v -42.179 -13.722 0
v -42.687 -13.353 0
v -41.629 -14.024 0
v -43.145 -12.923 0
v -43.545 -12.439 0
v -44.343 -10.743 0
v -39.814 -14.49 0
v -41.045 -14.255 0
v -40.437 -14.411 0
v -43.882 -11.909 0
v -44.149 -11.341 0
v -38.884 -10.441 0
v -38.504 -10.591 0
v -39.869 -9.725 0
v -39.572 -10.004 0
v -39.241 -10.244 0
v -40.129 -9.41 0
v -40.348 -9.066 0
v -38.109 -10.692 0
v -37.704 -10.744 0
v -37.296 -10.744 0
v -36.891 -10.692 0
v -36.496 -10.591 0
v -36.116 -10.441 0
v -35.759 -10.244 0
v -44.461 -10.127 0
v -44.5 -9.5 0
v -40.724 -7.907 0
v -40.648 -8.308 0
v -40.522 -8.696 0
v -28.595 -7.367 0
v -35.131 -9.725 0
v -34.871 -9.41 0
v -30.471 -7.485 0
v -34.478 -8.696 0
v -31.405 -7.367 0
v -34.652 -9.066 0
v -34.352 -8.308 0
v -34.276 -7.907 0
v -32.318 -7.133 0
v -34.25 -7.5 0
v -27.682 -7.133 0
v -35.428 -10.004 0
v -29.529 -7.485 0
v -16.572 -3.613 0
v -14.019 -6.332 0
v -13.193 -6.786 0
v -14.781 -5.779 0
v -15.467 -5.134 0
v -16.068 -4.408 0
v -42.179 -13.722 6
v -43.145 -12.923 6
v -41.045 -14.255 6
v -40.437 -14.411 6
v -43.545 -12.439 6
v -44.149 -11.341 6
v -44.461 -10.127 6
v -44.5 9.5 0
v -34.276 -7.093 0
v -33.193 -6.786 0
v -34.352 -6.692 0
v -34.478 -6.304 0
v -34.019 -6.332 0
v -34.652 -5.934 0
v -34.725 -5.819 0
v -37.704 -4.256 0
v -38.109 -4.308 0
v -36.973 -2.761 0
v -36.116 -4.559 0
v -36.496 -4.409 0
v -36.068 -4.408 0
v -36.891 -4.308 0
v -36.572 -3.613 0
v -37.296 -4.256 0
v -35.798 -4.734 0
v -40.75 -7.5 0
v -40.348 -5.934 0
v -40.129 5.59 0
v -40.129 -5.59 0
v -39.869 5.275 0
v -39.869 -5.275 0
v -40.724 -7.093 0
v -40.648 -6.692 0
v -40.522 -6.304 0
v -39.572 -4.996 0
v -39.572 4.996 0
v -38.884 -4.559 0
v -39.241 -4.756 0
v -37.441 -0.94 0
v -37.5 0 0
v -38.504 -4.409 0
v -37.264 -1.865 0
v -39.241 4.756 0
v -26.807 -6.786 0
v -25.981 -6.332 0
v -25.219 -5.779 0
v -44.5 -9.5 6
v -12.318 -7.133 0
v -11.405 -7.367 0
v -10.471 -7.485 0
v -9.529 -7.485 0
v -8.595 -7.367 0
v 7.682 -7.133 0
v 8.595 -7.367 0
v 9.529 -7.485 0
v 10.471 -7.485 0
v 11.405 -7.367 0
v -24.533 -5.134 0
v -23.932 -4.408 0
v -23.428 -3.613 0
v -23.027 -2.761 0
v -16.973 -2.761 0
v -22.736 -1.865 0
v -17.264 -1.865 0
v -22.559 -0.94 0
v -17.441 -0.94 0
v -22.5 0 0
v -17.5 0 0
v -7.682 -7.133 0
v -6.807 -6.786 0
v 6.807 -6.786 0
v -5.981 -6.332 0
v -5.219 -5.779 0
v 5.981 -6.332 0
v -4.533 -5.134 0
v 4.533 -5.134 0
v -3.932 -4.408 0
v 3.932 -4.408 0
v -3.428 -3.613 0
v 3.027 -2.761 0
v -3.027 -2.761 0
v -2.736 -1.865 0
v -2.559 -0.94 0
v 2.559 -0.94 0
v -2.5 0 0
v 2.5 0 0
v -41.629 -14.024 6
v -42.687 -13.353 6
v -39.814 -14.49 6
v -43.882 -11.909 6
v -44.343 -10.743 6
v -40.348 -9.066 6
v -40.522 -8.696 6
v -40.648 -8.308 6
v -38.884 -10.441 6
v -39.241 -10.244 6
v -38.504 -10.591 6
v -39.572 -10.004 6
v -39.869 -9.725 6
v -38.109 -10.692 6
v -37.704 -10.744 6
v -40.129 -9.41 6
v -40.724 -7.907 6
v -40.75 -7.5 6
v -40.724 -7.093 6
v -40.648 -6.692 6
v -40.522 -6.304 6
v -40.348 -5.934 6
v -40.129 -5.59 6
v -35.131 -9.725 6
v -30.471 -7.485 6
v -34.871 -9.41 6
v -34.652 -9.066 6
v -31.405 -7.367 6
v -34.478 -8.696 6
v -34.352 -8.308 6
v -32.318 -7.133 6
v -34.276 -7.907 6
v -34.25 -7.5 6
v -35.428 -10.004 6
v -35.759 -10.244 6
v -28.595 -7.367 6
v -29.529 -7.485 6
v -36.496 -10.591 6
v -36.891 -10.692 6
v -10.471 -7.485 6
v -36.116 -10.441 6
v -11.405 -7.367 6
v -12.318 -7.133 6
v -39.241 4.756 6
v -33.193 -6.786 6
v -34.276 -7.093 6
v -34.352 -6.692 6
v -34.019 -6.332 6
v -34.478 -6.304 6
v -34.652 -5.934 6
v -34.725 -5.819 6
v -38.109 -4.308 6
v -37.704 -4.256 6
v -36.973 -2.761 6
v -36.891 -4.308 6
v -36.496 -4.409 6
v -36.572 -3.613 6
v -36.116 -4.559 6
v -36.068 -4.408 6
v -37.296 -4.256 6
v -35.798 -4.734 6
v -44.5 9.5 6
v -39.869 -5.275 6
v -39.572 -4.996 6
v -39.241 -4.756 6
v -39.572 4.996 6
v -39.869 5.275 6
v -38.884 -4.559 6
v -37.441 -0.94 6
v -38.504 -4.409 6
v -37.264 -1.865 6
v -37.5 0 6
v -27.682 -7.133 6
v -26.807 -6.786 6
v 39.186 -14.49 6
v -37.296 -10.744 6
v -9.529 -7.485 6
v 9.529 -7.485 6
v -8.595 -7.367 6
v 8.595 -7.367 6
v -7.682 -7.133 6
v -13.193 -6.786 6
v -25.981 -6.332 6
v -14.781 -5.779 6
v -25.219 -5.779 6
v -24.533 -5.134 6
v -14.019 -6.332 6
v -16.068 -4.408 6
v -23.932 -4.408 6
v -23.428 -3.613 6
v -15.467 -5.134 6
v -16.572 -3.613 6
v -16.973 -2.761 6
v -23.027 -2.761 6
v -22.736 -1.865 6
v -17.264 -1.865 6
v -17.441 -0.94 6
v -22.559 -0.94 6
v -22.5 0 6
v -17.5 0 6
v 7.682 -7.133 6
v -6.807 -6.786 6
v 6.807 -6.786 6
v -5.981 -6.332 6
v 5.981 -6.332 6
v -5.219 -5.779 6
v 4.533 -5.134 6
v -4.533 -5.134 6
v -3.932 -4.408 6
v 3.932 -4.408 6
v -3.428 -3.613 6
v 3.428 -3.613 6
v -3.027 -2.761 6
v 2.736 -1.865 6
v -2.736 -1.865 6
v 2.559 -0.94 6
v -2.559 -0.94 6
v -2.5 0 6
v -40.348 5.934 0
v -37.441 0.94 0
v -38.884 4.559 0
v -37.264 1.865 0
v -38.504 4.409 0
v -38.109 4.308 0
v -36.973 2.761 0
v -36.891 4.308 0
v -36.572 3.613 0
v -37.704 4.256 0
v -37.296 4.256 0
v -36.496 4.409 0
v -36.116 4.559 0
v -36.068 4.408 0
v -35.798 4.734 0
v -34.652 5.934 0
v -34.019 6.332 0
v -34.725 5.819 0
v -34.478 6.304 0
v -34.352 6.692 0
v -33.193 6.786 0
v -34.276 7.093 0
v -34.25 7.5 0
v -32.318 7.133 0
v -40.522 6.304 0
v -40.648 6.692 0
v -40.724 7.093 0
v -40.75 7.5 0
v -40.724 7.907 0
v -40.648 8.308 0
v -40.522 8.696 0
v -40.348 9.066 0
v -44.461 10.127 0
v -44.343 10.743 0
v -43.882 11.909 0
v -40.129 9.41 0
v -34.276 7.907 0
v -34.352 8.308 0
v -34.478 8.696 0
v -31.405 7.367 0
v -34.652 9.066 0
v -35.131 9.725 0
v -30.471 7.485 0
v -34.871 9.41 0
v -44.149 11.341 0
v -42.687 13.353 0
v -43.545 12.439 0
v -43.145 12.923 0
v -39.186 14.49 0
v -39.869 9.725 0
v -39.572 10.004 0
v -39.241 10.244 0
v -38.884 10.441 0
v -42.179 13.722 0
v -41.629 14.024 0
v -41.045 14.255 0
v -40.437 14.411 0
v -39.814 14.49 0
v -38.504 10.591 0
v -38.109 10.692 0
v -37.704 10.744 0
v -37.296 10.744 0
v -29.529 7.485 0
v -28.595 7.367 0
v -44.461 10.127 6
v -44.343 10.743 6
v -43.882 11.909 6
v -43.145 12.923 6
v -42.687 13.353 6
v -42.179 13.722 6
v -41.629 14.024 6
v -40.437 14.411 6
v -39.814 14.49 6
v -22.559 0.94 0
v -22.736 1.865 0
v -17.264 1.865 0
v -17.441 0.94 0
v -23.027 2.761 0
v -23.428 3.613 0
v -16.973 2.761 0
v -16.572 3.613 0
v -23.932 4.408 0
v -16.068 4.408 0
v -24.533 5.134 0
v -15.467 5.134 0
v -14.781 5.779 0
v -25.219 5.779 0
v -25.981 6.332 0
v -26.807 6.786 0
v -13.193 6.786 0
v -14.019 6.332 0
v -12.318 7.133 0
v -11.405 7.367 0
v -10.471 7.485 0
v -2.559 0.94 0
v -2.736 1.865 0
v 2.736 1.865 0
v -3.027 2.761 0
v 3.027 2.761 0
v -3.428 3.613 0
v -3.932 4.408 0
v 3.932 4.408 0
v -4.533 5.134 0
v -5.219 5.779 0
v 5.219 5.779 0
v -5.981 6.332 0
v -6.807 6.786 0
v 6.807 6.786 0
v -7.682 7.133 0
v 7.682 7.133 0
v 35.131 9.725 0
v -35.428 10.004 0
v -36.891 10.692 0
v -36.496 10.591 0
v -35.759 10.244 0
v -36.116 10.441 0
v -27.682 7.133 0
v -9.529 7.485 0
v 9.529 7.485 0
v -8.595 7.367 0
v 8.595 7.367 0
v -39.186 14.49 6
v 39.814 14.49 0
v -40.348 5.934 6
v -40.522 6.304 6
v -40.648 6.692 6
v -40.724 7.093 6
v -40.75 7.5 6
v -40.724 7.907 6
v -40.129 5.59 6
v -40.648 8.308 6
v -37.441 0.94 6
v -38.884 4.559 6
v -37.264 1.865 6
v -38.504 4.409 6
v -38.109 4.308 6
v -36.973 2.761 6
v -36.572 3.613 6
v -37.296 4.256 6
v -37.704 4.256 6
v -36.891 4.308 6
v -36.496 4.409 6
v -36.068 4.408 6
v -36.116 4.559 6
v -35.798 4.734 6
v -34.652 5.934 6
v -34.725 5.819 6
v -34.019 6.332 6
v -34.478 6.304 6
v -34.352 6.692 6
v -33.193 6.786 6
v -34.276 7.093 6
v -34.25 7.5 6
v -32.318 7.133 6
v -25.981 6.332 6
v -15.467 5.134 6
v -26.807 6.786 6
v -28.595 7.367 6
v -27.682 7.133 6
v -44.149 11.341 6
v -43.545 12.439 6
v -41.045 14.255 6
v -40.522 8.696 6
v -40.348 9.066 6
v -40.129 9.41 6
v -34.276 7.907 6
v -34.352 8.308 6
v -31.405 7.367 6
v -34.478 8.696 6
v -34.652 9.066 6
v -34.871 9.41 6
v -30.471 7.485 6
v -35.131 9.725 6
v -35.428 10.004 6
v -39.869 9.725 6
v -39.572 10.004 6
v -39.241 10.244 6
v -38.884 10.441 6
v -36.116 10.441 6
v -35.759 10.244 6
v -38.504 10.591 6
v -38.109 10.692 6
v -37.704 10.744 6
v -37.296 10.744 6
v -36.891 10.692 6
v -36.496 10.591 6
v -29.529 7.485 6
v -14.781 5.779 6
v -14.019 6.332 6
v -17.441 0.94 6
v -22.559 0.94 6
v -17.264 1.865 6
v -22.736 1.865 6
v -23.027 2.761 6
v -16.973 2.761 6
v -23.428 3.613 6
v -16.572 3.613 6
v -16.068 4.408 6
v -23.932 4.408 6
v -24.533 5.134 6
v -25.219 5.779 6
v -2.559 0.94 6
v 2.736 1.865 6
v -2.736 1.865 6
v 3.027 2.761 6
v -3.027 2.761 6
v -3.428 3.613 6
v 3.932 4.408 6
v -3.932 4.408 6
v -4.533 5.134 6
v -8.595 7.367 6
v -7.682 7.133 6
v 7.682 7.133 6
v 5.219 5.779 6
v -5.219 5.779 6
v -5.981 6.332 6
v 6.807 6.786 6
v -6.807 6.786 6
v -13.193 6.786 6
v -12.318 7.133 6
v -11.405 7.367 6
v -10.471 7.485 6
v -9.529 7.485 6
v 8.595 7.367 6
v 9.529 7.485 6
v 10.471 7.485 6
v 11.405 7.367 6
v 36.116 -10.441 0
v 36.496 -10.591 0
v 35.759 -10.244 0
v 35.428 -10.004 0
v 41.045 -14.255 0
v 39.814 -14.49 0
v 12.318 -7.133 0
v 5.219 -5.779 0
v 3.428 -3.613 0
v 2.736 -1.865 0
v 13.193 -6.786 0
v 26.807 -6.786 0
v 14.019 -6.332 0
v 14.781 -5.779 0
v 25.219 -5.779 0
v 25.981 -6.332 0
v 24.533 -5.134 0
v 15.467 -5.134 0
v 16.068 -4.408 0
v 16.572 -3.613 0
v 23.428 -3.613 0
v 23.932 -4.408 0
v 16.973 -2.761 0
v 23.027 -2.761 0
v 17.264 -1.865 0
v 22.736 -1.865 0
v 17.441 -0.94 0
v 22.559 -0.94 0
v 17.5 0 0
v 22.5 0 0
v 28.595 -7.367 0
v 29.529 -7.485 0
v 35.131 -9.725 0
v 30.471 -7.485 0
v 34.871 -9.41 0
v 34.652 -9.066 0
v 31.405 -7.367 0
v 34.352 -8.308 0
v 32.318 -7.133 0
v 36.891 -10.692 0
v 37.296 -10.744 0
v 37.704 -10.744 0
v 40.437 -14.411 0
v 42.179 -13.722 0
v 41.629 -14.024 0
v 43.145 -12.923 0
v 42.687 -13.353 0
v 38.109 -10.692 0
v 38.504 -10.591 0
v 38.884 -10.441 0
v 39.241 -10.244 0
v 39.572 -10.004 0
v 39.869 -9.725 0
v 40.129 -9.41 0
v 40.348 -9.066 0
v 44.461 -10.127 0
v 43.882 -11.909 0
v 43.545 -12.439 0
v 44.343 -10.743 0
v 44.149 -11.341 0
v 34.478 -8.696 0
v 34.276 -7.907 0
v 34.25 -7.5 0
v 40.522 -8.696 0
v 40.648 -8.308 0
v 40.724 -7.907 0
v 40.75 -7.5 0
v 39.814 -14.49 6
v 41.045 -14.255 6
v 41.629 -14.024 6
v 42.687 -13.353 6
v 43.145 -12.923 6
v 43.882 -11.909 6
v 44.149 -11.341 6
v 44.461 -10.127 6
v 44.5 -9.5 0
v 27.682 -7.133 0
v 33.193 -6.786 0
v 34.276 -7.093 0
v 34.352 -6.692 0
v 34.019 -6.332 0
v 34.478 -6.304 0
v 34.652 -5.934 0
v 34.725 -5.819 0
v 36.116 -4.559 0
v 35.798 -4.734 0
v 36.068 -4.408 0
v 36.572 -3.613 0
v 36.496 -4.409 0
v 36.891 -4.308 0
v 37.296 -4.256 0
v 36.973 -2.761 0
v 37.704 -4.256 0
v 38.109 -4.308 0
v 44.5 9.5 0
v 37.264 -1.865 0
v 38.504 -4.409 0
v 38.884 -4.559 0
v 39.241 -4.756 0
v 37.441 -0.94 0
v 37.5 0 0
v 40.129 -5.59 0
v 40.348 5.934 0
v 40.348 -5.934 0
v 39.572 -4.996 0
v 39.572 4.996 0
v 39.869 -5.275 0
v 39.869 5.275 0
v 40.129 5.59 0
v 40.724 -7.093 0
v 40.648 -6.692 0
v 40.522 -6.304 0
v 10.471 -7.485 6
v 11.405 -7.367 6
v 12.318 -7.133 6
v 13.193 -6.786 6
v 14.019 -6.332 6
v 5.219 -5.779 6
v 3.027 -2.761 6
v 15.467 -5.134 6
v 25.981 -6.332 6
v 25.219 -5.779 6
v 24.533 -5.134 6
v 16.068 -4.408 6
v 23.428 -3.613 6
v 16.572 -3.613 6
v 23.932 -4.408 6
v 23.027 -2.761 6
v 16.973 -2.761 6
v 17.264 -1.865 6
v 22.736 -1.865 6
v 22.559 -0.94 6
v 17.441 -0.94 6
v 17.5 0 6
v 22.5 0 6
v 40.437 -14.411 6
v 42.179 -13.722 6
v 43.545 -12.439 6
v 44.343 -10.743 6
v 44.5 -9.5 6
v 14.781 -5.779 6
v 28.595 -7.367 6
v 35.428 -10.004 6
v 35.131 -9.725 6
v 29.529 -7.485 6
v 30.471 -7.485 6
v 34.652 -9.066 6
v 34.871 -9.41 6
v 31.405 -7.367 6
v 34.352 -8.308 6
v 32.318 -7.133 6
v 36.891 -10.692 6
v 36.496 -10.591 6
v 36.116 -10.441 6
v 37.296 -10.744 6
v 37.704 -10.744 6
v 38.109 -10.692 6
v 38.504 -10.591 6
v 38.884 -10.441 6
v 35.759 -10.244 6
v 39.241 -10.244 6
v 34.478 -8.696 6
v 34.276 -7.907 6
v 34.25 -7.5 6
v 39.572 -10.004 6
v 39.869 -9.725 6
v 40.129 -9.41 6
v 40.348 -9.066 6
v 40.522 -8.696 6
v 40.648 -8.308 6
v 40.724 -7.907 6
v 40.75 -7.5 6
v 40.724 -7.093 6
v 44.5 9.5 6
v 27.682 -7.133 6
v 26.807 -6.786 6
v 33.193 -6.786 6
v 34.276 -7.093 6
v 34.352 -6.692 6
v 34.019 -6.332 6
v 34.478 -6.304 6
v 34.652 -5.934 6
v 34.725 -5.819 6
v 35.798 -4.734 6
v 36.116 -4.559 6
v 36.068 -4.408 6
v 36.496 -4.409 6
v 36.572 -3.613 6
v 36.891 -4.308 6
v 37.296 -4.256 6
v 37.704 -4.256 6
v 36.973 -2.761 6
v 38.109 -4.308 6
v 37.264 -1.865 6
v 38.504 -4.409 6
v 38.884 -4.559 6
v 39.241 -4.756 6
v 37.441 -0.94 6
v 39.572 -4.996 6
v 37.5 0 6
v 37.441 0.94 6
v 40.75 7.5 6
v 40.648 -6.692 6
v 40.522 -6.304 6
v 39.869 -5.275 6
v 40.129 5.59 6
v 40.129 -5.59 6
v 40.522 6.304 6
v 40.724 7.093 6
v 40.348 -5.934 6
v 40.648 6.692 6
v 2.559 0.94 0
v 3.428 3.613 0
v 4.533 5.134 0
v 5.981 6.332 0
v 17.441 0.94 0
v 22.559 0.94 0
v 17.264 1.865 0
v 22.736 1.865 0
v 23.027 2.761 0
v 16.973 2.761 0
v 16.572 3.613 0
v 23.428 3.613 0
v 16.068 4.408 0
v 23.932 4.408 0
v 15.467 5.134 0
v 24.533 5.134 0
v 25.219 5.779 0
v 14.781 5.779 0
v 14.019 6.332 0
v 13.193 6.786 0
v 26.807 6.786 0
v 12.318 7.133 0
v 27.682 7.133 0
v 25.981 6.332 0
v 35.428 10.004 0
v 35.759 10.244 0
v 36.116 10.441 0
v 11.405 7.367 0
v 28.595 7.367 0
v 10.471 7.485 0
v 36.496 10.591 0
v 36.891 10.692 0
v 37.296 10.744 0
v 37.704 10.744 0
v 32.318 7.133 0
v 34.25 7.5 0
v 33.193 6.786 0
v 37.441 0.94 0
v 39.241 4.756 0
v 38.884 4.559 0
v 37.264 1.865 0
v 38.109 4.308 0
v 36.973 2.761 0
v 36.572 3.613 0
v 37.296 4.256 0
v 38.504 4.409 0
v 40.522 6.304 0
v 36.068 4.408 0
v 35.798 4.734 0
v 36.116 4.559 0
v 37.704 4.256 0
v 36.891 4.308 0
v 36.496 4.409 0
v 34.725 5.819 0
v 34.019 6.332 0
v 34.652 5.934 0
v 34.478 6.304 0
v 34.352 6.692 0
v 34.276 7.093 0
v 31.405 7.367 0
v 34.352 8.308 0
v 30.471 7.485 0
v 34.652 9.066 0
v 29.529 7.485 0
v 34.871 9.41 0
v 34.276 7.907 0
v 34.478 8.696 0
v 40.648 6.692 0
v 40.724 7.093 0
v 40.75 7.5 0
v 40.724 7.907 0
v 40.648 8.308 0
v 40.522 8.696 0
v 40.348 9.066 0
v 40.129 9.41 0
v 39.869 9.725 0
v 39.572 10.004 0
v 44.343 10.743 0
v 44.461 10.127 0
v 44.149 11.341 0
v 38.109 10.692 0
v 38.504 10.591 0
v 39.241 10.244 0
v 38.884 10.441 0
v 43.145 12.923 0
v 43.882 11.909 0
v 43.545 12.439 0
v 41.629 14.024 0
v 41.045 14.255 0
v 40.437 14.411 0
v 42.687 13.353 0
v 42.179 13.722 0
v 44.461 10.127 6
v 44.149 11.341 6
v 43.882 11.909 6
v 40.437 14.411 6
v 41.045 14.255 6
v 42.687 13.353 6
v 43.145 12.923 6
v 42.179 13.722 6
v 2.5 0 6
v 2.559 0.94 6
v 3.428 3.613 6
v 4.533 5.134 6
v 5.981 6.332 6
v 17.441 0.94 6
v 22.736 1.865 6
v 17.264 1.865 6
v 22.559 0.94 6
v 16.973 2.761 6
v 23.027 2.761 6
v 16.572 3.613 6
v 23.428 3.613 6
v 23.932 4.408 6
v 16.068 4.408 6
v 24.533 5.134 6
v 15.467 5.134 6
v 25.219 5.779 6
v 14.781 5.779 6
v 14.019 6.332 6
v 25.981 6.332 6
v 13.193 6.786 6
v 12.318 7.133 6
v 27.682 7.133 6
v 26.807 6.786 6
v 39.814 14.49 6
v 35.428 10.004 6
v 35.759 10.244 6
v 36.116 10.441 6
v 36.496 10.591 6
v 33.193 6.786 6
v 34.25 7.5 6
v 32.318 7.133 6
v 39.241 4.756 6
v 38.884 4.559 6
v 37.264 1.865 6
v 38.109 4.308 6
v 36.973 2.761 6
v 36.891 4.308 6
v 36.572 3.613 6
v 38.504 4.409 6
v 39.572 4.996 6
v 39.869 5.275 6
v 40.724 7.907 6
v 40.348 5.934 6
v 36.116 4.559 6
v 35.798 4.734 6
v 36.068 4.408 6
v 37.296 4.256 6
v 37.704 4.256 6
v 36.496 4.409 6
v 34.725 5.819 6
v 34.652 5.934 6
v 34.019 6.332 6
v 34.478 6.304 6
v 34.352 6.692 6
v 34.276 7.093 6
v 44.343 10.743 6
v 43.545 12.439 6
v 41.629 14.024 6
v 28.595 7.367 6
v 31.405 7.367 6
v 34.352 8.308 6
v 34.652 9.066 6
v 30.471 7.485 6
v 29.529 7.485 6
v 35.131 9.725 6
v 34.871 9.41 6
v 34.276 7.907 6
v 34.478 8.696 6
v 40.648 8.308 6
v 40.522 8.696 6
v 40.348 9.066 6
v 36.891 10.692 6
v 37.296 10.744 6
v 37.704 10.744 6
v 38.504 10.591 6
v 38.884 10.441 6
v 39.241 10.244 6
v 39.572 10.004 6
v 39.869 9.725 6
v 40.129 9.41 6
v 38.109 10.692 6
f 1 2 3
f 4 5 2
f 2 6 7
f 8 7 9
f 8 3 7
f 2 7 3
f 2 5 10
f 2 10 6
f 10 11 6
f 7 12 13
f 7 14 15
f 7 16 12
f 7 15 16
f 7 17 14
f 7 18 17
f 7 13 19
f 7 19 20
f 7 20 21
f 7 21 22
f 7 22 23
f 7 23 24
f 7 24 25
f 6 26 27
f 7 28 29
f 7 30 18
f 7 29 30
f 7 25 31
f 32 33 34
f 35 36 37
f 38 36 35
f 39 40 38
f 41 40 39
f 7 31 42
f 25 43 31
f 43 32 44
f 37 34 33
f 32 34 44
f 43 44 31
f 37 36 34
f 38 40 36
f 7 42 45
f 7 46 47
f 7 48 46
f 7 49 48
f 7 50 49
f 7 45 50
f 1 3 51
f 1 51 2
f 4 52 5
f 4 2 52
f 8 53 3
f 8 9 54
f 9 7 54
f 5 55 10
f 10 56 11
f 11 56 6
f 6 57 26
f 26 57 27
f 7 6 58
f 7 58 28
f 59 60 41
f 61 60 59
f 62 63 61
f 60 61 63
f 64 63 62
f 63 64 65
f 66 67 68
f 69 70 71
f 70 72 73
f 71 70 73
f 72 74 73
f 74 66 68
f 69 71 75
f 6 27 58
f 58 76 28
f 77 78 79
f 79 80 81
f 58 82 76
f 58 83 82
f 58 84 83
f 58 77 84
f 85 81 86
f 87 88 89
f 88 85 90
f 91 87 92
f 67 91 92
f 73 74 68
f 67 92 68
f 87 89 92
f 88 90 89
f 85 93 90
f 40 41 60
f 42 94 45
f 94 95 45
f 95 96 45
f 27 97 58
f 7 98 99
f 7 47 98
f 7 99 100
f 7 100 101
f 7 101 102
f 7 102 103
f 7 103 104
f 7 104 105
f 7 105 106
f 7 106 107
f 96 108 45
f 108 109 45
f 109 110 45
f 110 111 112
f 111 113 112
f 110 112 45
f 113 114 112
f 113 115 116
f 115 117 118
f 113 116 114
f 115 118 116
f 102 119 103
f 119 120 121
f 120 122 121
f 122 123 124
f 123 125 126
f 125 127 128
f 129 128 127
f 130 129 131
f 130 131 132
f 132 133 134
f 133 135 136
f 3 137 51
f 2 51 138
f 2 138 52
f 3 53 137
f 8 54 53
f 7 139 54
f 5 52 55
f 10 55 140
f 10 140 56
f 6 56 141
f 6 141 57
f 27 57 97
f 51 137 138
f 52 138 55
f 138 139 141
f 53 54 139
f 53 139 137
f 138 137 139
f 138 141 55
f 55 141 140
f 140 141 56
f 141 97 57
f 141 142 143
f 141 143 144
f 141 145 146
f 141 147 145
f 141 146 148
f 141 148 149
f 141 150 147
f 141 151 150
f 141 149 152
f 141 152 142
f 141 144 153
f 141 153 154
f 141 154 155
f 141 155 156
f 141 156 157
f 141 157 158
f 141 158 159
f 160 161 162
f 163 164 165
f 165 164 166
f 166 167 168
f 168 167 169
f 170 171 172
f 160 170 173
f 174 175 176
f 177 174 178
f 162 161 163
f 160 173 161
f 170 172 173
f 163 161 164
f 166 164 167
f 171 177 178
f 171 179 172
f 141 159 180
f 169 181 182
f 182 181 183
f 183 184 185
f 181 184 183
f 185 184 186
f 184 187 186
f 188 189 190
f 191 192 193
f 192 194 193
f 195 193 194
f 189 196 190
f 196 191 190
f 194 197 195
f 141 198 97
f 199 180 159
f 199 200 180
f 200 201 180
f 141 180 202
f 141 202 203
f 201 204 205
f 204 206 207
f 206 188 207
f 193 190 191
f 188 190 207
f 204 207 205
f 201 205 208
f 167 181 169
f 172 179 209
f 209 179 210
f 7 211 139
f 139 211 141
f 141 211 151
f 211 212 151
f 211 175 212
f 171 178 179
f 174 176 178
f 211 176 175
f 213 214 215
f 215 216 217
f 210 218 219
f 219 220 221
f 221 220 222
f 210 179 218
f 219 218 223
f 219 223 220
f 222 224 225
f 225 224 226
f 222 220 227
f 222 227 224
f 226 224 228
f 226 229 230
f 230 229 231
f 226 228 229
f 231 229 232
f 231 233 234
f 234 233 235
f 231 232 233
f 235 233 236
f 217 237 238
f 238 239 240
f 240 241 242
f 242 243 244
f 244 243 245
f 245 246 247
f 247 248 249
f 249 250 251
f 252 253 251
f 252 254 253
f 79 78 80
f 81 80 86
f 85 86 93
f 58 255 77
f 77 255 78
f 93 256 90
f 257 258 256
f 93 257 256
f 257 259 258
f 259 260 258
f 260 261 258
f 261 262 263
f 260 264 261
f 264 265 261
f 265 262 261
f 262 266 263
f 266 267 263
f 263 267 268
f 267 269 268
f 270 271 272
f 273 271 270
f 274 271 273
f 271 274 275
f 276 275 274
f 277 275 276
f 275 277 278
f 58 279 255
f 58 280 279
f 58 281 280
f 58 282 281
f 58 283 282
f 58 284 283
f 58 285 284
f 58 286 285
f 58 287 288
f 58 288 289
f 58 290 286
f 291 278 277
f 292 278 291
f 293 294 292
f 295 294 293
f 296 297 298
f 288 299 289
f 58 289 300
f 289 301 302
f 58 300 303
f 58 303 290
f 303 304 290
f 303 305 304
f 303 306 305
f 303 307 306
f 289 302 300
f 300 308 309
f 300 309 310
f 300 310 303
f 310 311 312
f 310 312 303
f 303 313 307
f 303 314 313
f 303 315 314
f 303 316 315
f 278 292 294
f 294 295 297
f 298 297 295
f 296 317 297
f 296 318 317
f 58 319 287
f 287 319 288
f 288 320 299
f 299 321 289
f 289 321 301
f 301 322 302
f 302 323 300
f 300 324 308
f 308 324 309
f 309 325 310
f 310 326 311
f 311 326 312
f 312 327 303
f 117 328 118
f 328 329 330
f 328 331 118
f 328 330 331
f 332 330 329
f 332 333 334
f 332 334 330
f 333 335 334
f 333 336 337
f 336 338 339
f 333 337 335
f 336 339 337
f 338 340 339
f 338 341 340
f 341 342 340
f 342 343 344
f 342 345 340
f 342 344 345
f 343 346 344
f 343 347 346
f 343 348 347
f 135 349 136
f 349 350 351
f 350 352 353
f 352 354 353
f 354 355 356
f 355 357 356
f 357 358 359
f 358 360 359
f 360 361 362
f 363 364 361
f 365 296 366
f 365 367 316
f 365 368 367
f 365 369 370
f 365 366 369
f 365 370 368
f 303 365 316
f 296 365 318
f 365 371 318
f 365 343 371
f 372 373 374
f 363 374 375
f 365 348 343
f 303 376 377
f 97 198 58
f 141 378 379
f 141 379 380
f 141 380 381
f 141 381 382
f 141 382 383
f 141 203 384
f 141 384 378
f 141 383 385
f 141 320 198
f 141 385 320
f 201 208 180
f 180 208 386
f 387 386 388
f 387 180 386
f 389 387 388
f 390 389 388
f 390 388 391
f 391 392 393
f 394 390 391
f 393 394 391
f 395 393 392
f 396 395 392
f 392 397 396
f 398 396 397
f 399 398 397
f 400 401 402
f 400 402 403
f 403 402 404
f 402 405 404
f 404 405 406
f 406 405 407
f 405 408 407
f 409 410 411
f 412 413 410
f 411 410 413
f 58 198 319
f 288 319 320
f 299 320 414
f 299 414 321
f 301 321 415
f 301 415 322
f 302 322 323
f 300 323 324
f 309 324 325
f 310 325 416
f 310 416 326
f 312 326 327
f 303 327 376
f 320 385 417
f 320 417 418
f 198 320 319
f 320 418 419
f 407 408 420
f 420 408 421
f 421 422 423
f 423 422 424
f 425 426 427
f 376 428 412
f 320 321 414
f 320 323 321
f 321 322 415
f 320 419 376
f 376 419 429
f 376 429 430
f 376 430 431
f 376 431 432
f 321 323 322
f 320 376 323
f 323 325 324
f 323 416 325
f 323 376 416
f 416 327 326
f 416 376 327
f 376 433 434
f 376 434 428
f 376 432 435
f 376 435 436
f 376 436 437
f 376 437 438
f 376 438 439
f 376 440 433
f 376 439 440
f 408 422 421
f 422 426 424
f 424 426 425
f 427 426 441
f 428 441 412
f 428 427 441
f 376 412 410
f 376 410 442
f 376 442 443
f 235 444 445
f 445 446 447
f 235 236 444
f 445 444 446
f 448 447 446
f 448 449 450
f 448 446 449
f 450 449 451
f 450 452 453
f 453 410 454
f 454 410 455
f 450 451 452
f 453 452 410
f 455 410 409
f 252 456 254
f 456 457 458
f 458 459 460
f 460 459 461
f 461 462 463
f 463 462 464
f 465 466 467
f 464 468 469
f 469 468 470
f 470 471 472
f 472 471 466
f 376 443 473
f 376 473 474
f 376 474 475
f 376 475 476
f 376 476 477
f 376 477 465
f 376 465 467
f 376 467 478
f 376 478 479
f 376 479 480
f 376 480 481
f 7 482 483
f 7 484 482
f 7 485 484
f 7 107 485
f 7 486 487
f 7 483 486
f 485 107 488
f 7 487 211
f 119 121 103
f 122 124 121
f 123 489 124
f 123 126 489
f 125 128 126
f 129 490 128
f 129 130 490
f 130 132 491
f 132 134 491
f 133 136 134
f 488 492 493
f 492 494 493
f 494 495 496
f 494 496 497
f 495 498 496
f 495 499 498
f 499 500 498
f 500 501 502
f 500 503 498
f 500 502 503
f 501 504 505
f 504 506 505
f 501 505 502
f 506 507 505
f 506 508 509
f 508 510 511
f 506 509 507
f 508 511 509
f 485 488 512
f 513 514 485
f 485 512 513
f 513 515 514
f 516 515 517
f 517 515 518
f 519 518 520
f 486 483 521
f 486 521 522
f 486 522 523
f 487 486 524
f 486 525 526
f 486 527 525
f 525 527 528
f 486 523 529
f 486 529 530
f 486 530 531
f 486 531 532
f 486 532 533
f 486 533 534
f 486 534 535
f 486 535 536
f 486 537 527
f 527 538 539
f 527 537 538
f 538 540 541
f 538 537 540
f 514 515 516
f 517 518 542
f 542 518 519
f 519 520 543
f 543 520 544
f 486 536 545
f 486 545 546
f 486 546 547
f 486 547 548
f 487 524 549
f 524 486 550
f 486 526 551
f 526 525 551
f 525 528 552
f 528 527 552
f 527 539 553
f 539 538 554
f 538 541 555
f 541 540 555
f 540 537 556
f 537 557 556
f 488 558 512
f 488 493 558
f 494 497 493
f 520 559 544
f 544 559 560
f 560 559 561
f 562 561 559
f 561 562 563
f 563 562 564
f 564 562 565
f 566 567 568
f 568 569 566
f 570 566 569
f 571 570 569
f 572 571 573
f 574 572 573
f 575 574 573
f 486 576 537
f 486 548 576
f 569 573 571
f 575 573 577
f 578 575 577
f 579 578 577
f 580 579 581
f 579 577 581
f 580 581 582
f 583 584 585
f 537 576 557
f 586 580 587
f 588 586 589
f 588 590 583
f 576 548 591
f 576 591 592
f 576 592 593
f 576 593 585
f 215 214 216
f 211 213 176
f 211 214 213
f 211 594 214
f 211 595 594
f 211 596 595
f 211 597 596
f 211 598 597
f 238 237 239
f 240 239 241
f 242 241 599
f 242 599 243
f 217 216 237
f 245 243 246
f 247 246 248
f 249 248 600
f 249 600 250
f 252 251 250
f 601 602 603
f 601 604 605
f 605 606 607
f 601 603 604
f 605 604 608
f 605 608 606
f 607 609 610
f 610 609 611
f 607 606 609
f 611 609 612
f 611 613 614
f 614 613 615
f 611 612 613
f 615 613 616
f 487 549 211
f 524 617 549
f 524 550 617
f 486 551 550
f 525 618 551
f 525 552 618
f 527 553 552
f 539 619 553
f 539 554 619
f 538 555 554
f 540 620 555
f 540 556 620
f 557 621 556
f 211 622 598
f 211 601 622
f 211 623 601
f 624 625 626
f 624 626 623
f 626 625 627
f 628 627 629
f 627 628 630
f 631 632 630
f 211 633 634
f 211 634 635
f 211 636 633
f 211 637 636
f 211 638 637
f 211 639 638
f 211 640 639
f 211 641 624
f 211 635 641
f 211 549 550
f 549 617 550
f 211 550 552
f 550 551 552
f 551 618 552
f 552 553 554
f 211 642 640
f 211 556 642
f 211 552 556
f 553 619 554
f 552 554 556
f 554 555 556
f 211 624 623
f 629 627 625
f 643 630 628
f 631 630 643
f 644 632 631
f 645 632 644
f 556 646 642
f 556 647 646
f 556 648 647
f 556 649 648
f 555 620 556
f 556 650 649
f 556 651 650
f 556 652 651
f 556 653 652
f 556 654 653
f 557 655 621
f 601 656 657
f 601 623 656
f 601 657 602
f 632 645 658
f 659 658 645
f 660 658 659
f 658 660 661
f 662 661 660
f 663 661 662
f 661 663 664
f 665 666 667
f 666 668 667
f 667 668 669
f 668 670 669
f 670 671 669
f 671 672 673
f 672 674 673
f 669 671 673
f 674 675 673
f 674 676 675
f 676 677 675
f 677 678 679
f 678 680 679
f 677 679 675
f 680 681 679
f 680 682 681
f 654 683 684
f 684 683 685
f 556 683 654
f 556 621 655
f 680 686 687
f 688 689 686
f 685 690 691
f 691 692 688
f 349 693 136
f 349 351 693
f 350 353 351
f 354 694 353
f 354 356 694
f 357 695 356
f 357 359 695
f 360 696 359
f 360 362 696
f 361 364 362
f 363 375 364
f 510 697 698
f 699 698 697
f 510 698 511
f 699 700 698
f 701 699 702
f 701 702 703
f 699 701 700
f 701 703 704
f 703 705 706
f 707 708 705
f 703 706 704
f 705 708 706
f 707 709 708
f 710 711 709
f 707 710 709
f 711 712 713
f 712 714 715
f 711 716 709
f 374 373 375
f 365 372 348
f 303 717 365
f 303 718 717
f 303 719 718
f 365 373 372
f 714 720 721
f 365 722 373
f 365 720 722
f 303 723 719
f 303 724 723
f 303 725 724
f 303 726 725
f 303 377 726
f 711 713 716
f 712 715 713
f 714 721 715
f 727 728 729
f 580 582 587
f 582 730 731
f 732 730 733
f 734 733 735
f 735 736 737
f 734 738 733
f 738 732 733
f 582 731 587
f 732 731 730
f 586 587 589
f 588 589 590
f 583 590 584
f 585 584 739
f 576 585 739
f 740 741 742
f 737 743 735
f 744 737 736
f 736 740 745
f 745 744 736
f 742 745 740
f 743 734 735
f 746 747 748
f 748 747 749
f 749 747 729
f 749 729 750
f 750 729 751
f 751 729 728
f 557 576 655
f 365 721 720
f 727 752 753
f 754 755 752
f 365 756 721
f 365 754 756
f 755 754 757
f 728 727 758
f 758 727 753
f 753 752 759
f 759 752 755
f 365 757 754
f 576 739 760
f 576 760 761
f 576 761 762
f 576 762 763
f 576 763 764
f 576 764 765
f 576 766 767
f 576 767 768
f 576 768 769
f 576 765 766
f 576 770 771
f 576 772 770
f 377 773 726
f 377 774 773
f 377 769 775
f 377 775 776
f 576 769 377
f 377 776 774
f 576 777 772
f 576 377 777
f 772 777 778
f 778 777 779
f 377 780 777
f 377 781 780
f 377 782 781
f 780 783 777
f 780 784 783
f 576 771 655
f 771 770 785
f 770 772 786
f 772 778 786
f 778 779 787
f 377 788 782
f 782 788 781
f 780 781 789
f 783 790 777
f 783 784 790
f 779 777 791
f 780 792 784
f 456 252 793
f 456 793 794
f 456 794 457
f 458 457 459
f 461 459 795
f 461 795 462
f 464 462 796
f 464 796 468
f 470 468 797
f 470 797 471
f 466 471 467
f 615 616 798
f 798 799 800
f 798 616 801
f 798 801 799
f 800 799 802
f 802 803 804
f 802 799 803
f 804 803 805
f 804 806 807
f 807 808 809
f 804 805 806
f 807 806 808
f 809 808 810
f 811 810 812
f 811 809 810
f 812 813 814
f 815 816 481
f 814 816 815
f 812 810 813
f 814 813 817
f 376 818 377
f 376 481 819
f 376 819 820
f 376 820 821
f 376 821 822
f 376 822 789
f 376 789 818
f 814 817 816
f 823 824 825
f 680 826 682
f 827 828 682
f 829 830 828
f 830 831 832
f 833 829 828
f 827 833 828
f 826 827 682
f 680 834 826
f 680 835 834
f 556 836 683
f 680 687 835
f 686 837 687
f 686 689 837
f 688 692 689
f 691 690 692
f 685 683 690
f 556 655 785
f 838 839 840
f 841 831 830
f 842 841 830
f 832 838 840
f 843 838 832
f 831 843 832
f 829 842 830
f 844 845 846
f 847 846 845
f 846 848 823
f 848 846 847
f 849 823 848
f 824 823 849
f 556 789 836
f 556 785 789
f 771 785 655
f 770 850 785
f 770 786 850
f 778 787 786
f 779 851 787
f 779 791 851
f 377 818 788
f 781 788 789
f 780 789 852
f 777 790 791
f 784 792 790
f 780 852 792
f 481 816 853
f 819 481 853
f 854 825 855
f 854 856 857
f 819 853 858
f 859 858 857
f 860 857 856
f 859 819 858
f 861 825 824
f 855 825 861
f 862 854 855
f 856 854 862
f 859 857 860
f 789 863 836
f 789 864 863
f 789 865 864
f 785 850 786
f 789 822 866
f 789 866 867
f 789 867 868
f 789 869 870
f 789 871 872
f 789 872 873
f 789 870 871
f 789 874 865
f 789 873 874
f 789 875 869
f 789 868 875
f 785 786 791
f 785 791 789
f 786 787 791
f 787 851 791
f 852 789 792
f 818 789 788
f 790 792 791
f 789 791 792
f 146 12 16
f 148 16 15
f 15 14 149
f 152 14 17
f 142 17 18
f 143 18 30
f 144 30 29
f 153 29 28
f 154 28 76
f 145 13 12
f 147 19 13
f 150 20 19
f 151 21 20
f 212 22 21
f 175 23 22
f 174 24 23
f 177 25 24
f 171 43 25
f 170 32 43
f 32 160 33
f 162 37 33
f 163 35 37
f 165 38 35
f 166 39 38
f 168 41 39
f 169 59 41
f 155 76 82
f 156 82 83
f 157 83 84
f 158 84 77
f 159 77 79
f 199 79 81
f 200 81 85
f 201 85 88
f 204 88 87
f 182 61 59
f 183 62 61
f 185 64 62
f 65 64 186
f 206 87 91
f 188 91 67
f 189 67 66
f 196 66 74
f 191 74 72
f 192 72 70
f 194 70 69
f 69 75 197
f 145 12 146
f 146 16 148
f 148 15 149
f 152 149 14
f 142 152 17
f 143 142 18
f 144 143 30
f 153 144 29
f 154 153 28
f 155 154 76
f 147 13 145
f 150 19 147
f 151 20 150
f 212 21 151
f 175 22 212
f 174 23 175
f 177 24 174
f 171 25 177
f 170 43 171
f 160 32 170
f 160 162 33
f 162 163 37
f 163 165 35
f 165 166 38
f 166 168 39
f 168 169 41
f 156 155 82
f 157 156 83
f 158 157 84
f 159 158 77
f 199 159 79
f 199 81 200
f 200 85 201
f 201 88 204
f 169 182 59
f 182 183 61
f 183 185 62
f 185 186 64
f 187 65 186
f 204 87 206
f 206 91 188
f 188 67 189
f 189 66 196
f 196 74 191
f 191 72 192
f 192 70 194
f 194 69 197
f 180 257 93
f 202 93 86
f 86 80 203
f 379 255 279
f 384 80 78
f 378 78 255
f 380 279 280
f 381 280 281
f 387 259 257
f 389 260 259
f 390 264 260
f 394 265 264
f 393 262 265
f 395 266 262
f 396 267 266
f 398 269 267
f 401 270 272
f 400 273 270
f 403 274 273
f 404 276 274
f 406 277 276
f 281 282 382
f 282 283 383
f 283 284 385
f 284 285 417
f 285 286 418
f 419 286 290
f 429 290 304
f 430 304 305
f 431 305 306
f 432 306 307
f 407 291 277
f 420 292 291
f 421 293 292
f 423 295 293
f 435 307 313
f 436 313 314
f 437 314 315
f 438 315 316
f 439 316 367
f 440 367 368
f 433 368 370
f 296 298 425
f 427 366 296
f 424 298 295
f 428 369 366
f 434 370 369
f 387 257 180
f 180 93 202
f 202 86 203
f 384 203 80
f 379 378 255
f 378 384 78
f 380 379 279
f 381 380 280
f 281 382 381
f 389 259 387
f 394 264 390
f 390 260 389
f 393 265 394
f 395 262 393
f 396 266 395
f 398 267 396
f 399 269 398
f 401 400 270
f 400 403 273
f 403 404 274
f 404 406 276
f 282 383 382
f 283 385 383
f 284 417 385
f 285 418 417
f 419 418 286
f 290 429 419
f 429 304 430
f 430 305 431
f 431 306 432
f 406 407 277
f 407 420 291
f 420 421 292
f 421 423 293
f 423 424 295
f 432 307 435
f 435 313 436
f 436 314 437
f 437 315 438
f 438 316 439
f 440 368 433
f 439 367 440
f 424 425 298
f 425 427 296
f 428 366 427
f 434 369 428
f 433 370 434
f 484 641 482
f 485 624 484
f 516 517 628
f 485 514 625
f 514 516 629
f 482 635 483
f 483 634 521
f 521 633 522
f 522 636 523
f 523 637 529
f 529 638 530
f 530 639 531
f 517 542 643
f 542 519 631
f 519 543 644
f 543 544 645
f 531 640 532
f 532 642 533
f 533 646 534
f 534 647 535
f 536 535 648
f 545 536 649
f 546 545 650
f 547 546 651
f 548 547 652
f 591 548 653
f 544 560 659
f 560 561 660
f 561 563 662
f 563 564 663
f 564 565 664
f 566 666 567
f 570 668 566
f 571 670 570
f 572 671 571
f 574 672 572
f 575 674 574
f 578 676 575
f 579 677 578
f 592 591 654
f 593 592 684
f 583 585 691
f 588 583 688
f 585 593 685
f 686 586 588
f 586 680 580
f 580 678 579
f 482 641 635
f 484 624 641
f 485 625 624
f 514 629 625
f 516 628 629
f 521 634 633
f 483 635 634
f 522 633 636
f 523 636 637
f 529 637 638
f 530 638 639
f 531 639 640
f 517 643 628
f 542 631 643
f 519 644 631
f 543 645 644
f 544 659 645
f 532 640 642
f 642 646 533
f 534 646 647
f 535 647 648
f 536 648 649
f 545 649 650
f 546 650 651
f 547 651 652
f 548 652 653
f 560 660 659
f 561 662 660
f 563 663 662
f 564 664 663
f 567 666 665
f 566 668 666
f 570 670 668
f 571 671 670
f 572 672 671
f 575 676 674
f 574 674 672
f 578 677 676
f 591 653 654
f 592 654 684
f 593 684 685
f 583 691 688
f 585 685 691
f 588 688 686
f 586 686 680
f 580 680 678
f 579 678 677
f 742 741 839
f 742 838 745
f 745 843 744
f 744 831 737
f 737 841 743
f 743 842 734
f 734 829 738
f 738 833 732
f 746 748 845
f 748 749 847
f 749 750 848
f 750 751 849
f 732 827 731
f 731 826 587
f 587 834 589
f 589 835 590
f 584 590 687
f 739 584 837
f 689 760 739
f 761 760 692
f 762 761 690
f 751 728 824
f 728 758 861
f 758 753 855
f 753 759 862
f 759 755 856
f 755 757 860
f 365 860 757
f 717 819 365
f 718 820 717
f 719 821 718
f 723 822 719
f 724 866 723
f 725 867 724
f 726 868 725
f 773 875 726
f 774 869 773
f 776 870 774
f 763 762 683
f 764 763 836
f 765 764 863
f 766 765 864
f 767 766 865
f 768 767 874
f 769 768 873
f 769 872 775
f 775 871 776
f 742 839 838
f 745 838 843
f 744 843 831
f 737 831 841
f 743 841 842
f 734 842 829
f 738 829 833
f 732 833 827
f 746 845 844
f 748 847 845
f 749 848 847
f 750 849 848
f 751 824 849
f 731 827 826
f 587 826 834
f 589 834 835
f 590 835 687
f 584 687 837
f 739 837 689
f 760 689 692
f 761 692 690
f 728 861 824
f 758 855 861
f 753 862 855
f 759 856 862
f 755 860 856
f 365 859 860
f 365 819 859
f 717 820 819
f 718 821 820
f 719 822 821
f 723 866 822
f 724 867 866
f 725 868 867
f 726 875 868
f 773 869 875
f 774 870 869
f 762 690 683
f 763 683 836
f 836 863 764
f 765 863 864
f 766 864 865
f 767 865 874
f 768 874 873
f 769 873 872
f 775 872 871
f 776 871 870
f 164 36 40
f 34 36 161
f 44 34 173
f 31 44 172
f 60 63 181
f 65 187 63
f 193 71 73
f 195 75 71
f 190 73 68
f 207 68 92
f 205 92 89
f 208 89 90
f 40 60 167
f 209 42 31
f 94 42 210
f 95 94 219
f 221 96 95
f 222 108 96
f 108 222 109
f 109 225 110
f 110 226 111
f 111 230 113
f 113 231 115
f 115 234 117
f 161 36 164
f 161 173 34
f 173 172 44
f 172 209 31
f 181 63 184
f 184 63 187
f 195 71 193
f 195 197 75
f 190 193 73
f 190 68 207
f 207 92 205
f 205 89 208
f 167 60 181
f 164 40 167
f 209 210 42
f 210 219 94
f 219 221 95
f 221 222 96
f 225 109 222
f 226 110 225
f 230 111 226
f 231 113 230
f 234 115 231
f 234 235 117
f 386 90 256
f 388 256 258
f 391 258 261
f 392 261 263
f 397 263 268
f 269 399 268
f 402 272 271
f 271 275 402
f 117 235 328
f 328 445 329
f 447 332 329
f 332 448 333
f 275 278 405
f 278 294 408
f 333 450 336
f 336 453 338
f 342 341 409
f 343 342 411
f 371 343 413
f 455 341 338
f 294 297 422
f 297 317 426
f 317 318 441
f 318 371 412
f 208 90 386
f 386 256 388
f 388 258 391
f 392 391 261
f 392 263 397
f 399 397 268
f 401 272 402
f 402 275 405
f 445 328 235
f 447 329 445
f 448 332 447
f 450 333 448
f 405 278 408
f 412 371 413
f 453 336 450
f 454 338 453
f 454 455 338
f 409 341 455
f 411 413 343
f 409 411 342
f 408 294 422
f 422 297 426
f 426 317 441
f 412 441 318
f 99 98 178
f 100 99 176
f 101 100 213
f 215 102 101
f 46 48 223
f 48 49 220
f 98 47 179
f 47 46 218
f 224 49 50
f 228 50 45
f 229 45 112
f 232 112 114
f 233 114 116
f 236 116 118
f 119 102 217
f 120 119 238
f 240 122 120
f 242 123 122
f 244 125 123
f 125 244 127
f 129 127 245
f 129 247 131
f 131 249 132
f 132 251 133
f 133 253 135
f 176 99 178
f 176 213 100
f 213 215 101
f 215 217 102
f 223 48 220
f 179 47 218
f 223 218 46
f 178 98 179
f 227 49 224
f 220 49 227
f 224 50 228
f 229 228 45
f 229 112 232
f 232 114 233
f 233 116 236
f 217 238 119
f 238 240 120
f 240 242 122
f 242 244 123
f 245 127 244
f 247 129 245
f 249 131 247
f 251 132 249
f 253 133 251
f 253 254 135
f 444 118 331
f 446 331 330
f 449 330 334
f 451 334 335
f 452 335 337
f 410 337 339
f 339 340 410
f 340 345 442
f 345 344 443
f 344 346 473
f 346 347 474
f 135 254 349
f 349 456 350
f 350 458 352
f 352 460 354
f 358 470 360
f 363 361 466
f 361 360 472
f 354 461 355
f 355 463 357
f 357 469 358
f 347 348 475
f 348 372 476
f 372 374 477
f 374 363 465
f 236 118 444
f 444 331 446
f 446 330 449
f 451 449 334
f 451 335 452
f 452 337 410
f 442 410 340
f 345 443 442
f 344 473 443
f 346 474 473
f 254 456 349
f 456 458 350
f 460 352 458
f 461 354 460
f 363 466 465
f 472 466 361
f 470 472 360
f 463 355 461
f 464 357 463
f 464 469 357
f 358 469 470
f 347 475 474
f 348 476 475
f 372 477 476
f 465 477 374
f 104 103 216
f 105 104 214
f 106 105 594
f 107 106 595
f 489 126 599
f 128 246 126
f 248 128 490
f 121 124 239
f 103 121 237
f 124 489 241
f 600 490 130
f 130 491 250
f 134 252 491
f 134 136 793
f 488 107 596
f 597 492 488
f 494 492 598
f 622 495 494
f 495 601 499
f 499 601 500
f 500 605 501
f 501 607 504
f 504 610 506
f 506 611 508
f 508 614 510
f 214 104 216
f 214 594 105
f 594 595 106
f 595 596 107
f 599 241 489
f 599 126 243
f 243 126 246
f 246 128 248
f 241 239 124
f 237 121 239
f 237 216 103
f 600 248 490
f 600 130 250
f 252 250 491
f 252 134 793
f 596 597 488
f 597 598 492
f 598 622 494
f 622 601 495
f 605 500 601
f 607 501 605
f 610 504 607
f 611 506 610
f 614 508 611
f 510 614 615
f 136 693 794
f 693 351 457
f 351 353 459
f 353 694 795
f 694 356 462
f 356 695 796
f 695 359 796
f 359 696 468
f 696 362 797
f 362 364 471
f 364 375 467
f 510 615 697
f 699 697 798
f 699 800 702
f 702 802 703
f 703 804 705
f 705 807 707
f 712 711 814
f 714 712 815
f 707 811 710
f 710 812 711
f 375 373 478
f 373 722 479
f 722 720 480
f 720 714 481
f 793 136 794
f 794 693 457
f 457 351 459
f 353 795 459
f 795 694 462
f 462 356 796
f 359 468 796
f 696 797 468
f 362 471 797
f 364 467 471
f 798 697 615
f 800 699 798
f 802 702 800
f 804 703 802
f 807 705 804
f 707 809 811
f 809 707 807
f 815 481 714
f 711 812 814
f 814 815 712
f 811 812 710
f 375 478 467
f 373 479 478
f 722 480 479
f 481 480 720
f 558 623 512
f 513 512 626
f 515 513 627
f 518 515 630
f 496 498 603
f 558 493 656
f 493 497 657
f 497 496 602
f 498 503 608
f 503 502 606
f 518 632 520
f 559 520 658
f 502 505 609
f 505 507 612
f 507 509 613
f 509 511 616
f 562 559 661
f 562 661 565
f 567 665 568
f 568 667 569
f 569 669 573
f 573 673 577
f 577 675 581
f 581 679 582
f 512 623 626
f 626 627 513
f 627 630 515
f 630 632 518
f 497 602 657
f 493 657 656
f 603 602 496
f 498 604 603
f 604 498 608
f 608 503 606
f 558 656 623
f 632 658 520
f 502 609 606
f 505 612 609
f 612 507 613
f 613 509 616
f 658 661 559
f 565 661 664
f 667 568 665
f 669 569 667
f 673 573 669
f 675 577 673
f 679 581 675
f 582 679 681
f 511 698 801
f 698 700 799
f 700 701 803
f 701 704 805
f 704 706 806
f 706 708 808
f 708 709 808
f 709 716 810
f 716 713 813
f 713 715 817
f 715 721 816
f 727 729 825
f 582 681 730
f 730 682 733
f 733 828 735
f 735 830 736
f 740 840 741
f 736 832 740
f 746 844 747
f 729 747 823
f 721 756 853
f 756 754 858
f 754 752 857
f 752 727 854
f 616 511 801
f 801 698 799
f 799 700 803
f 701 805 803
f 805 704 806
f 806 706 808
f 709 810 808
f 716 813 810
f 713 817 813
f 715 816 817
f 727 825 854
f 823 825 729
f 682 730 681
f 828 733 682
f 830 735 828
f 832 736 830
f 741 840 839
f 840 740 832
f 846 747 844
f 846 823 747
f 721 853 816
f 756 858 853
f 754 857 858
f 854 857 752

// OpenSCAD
$fn = 50;

difference() {
	union() {
		hull() {
			translate(v = [-39.5, 9.5, 0]) {
				cylinder(h = 6, r = 5);
			}
			translate(v = [39.5, 9.5, 0]) {
				cylinder(h = 6, r = 5);
			}
			translate(v = [-39.5, -9.5, 0]) {
				cylinder(h = 6, r = 5);
			}
			translate(v = [39.5, -9.5, 0]) {
				cylinder(h = 6, r = 5);
			}
		}
	}
	union() {
		translate(v = [-37.5, -7.5, -100.0]) {
			cylinder(h = 200, r = 3.25);
		}
		translate(v = [-37.5, 7.5, -100.0]) {
			cylinder(h = 200, r = 3.25);
		}
		translate(v = [37.5, -7.5, -100.0]) {
			cylinder(h = 200, r = 3.25);
		}
		translate(v = [37.5, 7.5, -100.0]) {
			cylinder(h = 200, r = 3.25);
		}
		translate(v = [-37.5, -7.5, -100.0]) {
			cylinder(h = 200, r = 1.8);
		}
		translate(v = [-37.5, 7.5, -100.0]) {
			cylinder(h = 200, r = 1.8);
		}
		translate(v = [37.5, -7.5, -100.0]) {
			cylinder(h = 200, r = 1.8);
		}
		translate(v = [37.5, 7.5, -100.0]) {
			cylinder(h = 200, r = 1.8);
		}
		translate(v = [-30.0, 0, 0.0]) {
			cylinder(h = 6, r = 7.5);
		}
		translate(v = [-10.0, 0, 0.0]) {
			cylinder(h = 6, r = 7.5);
		}
		translate(v = [10.0, 0, 0.0]) {
			cylinder(h = 6, r = 7.5);
		}
		translate(v = [30.0, 0, 0.0]) {
			cylinder(h = 6, r = 7.5);
		}
	}
}
